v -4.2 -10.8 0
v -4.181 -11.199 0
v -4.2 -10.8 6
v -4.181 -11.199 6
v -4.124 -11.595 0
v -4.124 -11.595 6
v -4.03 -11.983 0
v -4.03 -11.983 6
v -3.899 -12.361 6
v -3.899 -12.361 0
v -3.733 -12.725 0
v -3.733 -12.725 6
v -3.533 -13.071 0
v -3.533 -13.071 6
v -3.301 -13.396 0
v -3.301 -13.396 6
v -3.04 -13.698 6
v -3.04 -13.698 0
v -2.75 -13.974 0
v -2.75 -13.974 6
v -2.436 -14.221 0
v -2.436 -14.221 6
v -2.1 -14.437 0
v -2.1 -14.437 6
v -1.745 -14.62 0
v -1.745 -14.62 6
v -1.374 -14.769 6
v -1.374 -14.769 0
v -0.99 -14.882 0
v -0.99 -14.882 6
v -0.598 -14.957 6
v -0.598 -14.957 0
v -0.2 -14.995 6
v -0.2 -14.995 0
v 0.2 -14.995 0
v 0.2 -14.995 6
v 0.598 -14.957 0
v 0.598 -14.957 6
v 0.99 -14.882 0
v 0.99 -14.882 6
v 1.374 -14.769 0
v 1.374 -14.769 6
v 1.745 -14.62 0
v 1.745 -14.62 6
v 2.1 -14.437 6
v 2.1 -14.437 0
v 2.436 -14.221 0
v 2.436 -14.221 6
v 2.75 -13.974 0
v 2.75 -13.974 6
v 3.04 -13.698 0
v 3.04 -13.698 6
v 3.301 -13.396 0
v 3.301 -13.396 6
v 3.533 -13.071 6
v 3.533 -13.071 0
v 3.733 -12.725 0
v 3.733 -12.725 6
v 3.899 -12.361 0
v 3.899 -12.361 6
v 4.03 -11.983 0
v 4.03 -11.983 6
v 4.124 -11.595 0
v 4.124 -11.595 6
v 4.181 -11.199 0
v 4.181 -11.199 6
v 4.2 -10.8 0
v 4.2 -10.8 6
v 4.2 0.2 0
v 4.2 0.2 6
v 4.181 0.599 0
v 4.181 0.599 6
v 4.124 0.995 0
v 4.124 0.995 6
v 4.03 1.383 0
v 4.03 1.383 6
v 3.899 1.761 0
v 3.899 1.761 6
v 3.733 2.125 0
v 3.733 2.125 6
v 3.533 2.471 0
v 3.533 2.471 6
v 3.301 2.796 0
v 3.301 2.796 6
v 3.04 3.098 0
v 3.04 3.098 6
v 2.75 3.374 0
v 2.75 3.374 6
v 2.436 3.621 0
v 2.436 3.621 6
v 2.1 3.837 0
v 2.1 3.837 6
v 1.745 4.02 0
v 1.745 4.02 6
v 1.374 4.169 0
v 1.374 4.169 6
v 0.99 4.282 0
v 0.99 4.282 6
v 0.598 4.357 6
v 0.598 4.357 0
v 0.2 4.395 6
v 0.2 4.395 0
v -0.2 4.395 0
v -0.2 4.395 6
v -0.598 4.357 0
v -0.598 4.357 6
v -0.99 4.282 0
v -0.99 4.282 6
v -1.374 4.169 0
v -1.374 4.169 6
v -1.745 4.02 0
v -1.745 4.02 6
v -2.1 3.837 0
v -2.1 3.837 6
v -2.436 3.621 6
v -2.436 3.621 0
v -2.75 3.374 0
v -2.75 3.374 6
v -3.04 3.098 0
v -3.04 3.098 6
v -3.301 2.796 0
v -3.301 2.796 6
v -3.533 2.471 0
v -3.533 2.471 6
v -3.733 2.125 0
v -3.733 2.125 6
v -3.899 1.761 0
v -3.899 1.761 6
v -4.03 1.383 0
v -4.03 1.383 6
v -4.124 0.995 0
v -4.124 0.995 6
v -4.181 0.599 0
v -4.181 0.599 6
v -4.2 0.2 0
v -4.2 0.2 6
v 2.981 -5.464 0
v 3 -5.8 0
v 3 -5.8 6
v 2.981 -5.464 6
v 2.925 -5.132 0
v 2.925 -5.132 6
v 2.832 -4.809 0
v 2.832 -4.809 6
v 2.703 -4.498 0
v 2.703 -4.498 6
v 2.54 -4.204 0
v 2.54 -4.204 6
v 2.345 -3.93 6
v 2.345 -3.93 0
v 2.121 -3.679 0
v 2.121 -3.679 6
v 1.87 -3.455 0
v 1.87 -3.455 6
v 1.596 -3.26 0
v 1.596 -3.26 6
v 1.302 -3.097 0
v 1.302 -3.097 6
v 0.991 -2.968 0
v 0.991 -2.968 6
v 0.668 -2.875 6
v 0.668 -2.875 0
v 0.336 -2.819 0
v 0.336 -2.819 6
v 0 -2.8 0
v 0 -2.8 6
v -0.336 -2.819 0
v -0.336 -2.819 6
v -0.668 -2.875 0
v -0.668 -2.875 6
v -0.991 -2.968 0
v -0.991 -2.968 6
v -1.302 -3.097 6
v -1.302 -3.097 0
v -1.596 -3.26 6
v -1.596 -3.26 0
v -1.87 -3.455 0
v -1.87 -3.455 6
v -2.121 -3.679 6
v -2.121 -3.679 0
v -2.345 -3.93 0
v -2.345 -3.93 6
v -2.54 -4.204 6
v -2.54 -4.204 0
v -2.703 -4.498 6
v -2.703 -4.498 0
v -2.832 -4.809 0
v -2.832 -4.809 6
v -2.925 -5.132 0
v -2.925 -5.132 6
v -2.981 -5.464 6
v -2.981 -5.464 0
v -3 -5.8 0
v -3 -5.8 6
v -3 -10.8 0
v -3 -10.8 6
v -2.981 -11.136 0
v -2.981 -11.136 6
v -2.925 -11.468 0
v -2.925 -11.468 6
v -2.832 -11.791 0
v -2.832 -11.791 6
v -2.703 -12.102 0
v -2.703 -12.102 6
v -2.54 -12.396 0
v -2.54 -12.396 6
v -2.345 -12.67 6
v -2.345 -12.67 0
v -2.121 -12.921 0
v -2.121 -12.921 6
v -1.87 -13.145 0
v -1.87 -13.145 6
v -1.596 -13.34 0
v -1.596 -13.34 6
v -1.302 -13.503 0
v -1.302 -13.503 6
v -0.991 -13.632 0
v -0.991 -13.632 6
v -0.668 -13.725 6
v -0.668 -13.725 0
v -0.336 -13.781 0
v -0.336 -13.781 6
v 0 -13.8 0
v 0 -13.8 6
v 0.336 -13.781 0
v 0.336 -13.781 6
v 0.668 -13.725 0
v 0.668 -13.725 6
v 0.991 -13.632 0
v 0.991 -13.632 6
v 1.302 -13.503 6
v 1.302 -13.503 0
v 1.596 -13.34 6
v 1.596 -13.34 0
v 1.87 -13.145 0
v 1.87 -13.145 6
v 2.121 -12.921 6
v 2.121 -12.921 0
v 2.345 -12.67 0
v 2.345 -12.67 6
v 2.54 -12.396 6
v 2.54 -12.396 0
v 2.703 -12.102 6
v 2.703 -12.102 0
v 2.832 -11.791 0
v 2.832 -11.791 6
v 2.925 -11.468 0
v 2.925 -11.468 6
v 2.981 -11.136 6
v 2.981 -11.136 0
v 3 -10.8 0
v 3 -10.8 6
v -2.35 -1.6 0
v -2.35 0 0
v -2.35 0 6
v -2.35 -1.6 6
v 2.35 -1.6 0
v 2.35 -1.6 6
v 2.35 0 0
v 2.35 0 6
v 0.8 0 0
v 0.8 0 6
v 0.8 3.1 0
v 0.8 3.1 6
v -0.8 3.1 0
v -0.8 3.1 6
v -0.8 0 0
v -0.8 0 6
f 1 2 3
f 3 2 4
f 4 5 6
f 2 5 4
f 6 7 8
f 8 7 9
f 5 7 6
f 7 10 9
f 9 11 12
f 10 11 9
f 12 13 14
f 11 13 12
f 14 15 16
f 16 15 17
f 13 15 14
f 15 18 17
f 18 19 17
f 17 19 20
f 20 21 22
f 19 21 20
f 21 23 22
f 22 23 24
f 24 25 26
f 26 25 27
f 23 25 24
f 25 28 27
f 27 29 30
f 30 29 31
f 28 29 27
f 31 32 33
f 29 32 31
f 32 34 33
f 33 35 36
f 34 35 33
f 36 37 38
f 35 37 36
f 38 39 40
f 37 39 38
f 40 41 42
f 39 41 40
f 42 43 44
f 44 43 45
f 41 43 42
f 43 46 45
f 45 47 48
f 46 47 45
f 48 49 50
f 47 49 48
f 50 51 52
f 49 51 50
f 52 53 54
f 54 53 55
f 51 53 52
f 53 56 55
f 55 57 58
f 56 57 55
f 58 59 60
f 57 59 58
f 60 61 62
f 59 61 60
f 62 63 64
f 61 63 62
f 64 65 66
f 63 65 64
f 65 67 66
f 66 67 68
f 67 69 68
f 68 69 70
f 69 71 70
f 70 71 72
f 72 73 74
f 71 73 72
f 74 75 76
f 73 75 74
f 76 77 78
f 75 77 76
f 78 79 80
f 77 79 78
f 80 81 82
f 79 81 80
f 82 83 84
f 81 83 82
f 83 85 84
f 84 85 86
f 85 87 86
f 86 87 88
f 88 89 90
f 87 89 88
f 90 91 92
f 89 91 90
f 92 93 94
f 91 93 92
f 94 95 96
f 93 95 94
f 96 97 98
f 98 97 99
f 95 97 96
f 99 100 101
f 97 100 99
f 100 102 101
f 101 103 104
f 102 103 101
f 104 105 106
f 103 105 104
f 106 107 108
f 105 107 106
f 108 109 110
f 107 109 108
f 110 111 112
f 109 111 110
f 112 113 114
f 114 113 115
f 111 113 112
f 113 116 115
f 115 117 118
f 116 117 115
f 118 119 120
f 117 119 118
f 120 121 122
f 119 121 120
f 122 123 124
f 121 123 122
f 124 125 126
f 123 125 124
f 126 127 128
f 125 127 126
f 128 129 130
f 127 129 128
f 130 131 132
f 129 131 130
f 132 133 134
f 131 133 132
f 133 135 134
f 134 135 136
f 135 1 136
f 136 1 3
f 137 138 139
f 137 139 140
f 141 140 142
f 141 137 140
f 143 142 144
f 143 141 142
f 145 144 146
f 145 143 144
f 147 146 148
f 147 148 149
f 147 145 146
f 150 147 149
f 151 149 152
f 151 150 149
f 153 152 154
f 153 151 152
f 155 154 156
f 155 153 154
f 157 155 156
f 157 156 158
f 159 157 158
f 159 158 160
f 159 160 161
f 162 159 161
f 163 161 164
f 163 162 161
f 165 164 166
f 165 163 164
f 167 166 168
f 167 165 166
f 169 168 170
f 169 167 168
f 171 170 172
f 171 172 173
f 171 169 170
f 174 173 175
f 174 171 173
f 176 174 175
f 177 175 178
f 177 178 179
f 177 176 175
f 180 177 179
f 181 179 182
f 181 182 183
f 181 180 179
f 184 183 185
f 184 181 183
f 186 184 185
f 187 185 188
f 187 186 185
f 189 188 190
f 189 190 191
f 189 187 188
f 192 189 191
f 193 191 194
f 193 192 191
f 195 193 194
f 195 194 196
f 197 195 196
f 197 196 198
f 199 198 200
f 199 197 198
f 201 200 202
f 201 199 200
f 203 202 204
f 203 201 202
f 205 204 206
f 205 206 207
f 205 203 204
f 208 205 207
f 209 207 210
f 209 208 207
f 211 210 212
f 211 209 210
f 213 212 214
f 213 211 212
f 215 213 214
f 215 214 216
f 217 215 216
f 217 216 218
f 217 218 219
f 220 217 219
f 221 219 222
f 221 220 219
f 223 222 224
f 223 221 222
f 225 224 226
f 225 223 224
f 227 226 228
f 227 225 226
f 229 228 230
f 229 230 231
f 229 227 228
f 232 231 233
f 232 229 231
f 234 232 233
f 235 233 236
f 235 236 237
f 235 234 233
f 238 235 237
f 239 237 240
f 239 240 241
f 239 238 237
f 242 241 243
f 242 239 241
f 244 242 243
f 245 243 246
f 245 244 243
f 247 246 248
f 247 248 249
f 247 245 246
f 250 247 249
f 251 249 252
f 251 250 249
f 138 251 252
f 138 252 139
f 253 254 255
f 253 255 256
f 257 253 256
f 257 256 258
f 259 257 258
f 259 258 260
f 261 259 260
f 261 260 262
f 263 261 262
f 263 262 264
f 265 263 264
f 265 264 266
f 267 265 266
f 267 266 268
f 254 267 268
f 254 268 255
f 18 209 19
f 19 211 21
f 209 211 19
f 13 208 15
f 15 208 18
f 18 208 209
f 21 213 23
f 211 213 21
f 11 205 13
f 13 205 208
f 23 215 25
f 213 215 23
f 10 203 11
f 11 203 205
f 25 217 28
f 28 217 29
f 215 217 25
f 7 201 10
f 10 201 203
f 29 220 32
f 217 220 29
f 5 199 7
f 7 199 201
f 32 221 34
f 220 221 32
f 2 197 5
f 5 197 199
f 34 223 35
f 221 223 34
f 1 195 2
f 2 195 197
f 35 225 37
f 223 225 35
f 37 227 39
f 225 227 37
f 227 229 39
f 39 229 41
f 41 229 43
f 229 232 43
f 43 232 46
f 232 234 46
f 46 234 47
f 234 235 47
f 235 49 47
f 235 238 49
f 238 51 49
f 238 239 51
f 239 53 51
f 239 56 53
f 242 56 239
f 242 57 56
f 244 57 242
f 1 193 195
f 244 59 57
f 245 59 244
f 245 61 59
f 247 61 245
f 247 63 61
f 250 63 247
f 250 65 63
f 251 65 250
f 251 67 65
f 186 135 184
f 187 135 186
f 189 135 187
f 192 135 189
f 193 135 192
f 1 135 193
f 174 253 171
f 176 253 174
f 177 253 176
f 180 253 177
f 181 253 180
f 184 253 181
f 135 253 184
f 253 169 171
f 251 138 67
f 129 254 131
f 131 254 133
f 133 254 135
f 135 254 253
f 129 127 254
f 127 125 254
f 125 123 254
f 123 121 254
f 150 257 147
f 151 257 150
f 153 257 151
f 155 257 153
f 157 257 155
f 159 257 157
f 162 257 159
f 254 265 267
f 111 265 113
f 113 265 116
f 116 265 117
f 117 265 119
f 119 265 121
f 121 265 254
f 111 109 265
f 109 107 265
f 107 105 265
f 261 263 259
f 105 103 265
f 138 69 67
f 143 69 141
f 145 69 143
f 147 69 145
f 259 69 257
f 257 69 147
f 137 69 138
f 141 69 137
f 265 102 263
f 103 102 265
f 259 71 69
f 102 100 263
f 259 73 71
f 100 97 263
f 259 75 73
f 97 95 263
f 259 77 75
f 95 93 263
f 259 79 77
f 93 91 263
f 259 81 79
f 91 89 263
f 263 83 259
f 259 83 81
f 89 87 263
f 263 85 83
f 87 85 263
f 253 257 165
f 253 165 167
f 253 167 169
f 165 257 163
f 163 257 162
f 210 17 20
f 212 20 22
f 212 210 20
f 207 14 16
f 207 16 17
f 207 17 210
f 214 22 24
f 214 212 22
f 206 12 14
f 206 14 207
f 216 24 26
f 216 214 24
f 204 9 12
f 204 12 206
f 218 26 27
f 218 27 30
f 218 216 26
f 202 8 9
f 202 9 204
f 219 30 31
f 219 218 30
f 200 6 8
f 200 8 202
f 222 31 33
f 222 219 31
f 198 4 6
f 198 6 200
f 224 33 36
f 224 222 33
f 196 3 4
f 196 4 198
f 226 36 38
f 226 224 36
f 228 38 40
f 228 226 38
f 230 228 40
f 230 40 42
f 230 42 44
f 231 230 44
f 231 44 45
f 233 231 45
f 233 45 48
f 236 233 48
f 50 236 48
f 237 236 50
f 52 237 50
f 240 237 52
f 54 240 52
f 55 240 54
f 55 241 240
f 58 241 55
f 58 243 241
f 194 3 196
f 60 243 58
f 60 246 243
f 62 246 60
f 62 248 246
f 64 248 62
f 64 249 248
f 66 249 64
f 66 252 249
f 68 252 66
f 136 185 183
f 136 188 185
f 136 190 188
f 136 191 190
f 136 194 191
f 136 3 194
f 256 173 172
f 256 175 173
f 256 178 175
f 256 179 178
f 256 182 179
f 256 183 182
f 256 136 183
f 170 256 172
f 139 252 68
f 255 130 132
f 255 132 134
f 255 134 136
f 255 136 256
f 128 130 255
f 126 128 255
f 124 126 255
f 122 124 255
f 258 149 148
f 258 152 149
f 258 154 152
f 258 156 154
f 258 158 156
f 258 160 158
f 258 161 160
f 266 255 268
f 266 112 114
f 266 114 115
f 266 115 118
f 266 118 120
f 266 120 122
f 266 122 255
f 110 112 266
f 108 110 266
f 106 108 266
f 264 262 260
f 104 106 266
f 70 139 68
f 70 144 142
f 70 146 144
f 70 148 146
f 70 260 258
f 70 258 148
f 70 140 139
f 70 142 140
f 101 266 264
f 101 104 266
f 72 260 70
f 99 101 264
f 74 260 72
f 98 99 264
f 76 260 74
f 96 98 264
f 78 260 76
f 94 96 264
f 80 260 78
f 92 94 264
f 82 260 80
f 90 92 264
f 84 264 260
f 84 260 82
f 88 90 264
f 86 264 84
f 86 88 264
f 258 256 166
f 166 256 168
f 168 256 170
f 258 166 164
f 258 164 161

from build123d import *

# Parameters (mm, degrees)
PAD_DEPTH = 6


with BuildPart() as part:
    # Sketch → Pad (new body)
    with BuildSketch(Plane.XY):
        with BuildLine():
            ThreePointArc((-4.2, -10.8), (0, -15), (4.2, -10.8))
            Line((4.2, -10.8), (4.2, 0.2))
            ThreePointArc((4.2, 0.2), (0, 4.4), (-4.2, 0.2))
            Line((-4.2, 0.2), (-4.2, -10.8))
        make_face()
        Polygon((-2.35, 0), (-2.35, -1.6), (2.35, -1.6), (2.35, 0), (0.8, 0), (0.8, 3.1), (-0.8, 3.1), (-0.8, 0), align=None, mode=Mode.SUBTRACT)
        with BuildLine():
            ThreePointArc((3, -5.8), (0, -2.8), (-3, -5.8))
            Line((-3, -5.8), (-3, -10.8))
            ThreePointArc((-3, -10.8), (0, -13.8), (3, -10.8))
            Line((3, -10.8), (3, -5.8))
        make_face(mode=Mode.SUBTRACT)
    extrude(amount=PAD_DEPTH)


solid = part.part
